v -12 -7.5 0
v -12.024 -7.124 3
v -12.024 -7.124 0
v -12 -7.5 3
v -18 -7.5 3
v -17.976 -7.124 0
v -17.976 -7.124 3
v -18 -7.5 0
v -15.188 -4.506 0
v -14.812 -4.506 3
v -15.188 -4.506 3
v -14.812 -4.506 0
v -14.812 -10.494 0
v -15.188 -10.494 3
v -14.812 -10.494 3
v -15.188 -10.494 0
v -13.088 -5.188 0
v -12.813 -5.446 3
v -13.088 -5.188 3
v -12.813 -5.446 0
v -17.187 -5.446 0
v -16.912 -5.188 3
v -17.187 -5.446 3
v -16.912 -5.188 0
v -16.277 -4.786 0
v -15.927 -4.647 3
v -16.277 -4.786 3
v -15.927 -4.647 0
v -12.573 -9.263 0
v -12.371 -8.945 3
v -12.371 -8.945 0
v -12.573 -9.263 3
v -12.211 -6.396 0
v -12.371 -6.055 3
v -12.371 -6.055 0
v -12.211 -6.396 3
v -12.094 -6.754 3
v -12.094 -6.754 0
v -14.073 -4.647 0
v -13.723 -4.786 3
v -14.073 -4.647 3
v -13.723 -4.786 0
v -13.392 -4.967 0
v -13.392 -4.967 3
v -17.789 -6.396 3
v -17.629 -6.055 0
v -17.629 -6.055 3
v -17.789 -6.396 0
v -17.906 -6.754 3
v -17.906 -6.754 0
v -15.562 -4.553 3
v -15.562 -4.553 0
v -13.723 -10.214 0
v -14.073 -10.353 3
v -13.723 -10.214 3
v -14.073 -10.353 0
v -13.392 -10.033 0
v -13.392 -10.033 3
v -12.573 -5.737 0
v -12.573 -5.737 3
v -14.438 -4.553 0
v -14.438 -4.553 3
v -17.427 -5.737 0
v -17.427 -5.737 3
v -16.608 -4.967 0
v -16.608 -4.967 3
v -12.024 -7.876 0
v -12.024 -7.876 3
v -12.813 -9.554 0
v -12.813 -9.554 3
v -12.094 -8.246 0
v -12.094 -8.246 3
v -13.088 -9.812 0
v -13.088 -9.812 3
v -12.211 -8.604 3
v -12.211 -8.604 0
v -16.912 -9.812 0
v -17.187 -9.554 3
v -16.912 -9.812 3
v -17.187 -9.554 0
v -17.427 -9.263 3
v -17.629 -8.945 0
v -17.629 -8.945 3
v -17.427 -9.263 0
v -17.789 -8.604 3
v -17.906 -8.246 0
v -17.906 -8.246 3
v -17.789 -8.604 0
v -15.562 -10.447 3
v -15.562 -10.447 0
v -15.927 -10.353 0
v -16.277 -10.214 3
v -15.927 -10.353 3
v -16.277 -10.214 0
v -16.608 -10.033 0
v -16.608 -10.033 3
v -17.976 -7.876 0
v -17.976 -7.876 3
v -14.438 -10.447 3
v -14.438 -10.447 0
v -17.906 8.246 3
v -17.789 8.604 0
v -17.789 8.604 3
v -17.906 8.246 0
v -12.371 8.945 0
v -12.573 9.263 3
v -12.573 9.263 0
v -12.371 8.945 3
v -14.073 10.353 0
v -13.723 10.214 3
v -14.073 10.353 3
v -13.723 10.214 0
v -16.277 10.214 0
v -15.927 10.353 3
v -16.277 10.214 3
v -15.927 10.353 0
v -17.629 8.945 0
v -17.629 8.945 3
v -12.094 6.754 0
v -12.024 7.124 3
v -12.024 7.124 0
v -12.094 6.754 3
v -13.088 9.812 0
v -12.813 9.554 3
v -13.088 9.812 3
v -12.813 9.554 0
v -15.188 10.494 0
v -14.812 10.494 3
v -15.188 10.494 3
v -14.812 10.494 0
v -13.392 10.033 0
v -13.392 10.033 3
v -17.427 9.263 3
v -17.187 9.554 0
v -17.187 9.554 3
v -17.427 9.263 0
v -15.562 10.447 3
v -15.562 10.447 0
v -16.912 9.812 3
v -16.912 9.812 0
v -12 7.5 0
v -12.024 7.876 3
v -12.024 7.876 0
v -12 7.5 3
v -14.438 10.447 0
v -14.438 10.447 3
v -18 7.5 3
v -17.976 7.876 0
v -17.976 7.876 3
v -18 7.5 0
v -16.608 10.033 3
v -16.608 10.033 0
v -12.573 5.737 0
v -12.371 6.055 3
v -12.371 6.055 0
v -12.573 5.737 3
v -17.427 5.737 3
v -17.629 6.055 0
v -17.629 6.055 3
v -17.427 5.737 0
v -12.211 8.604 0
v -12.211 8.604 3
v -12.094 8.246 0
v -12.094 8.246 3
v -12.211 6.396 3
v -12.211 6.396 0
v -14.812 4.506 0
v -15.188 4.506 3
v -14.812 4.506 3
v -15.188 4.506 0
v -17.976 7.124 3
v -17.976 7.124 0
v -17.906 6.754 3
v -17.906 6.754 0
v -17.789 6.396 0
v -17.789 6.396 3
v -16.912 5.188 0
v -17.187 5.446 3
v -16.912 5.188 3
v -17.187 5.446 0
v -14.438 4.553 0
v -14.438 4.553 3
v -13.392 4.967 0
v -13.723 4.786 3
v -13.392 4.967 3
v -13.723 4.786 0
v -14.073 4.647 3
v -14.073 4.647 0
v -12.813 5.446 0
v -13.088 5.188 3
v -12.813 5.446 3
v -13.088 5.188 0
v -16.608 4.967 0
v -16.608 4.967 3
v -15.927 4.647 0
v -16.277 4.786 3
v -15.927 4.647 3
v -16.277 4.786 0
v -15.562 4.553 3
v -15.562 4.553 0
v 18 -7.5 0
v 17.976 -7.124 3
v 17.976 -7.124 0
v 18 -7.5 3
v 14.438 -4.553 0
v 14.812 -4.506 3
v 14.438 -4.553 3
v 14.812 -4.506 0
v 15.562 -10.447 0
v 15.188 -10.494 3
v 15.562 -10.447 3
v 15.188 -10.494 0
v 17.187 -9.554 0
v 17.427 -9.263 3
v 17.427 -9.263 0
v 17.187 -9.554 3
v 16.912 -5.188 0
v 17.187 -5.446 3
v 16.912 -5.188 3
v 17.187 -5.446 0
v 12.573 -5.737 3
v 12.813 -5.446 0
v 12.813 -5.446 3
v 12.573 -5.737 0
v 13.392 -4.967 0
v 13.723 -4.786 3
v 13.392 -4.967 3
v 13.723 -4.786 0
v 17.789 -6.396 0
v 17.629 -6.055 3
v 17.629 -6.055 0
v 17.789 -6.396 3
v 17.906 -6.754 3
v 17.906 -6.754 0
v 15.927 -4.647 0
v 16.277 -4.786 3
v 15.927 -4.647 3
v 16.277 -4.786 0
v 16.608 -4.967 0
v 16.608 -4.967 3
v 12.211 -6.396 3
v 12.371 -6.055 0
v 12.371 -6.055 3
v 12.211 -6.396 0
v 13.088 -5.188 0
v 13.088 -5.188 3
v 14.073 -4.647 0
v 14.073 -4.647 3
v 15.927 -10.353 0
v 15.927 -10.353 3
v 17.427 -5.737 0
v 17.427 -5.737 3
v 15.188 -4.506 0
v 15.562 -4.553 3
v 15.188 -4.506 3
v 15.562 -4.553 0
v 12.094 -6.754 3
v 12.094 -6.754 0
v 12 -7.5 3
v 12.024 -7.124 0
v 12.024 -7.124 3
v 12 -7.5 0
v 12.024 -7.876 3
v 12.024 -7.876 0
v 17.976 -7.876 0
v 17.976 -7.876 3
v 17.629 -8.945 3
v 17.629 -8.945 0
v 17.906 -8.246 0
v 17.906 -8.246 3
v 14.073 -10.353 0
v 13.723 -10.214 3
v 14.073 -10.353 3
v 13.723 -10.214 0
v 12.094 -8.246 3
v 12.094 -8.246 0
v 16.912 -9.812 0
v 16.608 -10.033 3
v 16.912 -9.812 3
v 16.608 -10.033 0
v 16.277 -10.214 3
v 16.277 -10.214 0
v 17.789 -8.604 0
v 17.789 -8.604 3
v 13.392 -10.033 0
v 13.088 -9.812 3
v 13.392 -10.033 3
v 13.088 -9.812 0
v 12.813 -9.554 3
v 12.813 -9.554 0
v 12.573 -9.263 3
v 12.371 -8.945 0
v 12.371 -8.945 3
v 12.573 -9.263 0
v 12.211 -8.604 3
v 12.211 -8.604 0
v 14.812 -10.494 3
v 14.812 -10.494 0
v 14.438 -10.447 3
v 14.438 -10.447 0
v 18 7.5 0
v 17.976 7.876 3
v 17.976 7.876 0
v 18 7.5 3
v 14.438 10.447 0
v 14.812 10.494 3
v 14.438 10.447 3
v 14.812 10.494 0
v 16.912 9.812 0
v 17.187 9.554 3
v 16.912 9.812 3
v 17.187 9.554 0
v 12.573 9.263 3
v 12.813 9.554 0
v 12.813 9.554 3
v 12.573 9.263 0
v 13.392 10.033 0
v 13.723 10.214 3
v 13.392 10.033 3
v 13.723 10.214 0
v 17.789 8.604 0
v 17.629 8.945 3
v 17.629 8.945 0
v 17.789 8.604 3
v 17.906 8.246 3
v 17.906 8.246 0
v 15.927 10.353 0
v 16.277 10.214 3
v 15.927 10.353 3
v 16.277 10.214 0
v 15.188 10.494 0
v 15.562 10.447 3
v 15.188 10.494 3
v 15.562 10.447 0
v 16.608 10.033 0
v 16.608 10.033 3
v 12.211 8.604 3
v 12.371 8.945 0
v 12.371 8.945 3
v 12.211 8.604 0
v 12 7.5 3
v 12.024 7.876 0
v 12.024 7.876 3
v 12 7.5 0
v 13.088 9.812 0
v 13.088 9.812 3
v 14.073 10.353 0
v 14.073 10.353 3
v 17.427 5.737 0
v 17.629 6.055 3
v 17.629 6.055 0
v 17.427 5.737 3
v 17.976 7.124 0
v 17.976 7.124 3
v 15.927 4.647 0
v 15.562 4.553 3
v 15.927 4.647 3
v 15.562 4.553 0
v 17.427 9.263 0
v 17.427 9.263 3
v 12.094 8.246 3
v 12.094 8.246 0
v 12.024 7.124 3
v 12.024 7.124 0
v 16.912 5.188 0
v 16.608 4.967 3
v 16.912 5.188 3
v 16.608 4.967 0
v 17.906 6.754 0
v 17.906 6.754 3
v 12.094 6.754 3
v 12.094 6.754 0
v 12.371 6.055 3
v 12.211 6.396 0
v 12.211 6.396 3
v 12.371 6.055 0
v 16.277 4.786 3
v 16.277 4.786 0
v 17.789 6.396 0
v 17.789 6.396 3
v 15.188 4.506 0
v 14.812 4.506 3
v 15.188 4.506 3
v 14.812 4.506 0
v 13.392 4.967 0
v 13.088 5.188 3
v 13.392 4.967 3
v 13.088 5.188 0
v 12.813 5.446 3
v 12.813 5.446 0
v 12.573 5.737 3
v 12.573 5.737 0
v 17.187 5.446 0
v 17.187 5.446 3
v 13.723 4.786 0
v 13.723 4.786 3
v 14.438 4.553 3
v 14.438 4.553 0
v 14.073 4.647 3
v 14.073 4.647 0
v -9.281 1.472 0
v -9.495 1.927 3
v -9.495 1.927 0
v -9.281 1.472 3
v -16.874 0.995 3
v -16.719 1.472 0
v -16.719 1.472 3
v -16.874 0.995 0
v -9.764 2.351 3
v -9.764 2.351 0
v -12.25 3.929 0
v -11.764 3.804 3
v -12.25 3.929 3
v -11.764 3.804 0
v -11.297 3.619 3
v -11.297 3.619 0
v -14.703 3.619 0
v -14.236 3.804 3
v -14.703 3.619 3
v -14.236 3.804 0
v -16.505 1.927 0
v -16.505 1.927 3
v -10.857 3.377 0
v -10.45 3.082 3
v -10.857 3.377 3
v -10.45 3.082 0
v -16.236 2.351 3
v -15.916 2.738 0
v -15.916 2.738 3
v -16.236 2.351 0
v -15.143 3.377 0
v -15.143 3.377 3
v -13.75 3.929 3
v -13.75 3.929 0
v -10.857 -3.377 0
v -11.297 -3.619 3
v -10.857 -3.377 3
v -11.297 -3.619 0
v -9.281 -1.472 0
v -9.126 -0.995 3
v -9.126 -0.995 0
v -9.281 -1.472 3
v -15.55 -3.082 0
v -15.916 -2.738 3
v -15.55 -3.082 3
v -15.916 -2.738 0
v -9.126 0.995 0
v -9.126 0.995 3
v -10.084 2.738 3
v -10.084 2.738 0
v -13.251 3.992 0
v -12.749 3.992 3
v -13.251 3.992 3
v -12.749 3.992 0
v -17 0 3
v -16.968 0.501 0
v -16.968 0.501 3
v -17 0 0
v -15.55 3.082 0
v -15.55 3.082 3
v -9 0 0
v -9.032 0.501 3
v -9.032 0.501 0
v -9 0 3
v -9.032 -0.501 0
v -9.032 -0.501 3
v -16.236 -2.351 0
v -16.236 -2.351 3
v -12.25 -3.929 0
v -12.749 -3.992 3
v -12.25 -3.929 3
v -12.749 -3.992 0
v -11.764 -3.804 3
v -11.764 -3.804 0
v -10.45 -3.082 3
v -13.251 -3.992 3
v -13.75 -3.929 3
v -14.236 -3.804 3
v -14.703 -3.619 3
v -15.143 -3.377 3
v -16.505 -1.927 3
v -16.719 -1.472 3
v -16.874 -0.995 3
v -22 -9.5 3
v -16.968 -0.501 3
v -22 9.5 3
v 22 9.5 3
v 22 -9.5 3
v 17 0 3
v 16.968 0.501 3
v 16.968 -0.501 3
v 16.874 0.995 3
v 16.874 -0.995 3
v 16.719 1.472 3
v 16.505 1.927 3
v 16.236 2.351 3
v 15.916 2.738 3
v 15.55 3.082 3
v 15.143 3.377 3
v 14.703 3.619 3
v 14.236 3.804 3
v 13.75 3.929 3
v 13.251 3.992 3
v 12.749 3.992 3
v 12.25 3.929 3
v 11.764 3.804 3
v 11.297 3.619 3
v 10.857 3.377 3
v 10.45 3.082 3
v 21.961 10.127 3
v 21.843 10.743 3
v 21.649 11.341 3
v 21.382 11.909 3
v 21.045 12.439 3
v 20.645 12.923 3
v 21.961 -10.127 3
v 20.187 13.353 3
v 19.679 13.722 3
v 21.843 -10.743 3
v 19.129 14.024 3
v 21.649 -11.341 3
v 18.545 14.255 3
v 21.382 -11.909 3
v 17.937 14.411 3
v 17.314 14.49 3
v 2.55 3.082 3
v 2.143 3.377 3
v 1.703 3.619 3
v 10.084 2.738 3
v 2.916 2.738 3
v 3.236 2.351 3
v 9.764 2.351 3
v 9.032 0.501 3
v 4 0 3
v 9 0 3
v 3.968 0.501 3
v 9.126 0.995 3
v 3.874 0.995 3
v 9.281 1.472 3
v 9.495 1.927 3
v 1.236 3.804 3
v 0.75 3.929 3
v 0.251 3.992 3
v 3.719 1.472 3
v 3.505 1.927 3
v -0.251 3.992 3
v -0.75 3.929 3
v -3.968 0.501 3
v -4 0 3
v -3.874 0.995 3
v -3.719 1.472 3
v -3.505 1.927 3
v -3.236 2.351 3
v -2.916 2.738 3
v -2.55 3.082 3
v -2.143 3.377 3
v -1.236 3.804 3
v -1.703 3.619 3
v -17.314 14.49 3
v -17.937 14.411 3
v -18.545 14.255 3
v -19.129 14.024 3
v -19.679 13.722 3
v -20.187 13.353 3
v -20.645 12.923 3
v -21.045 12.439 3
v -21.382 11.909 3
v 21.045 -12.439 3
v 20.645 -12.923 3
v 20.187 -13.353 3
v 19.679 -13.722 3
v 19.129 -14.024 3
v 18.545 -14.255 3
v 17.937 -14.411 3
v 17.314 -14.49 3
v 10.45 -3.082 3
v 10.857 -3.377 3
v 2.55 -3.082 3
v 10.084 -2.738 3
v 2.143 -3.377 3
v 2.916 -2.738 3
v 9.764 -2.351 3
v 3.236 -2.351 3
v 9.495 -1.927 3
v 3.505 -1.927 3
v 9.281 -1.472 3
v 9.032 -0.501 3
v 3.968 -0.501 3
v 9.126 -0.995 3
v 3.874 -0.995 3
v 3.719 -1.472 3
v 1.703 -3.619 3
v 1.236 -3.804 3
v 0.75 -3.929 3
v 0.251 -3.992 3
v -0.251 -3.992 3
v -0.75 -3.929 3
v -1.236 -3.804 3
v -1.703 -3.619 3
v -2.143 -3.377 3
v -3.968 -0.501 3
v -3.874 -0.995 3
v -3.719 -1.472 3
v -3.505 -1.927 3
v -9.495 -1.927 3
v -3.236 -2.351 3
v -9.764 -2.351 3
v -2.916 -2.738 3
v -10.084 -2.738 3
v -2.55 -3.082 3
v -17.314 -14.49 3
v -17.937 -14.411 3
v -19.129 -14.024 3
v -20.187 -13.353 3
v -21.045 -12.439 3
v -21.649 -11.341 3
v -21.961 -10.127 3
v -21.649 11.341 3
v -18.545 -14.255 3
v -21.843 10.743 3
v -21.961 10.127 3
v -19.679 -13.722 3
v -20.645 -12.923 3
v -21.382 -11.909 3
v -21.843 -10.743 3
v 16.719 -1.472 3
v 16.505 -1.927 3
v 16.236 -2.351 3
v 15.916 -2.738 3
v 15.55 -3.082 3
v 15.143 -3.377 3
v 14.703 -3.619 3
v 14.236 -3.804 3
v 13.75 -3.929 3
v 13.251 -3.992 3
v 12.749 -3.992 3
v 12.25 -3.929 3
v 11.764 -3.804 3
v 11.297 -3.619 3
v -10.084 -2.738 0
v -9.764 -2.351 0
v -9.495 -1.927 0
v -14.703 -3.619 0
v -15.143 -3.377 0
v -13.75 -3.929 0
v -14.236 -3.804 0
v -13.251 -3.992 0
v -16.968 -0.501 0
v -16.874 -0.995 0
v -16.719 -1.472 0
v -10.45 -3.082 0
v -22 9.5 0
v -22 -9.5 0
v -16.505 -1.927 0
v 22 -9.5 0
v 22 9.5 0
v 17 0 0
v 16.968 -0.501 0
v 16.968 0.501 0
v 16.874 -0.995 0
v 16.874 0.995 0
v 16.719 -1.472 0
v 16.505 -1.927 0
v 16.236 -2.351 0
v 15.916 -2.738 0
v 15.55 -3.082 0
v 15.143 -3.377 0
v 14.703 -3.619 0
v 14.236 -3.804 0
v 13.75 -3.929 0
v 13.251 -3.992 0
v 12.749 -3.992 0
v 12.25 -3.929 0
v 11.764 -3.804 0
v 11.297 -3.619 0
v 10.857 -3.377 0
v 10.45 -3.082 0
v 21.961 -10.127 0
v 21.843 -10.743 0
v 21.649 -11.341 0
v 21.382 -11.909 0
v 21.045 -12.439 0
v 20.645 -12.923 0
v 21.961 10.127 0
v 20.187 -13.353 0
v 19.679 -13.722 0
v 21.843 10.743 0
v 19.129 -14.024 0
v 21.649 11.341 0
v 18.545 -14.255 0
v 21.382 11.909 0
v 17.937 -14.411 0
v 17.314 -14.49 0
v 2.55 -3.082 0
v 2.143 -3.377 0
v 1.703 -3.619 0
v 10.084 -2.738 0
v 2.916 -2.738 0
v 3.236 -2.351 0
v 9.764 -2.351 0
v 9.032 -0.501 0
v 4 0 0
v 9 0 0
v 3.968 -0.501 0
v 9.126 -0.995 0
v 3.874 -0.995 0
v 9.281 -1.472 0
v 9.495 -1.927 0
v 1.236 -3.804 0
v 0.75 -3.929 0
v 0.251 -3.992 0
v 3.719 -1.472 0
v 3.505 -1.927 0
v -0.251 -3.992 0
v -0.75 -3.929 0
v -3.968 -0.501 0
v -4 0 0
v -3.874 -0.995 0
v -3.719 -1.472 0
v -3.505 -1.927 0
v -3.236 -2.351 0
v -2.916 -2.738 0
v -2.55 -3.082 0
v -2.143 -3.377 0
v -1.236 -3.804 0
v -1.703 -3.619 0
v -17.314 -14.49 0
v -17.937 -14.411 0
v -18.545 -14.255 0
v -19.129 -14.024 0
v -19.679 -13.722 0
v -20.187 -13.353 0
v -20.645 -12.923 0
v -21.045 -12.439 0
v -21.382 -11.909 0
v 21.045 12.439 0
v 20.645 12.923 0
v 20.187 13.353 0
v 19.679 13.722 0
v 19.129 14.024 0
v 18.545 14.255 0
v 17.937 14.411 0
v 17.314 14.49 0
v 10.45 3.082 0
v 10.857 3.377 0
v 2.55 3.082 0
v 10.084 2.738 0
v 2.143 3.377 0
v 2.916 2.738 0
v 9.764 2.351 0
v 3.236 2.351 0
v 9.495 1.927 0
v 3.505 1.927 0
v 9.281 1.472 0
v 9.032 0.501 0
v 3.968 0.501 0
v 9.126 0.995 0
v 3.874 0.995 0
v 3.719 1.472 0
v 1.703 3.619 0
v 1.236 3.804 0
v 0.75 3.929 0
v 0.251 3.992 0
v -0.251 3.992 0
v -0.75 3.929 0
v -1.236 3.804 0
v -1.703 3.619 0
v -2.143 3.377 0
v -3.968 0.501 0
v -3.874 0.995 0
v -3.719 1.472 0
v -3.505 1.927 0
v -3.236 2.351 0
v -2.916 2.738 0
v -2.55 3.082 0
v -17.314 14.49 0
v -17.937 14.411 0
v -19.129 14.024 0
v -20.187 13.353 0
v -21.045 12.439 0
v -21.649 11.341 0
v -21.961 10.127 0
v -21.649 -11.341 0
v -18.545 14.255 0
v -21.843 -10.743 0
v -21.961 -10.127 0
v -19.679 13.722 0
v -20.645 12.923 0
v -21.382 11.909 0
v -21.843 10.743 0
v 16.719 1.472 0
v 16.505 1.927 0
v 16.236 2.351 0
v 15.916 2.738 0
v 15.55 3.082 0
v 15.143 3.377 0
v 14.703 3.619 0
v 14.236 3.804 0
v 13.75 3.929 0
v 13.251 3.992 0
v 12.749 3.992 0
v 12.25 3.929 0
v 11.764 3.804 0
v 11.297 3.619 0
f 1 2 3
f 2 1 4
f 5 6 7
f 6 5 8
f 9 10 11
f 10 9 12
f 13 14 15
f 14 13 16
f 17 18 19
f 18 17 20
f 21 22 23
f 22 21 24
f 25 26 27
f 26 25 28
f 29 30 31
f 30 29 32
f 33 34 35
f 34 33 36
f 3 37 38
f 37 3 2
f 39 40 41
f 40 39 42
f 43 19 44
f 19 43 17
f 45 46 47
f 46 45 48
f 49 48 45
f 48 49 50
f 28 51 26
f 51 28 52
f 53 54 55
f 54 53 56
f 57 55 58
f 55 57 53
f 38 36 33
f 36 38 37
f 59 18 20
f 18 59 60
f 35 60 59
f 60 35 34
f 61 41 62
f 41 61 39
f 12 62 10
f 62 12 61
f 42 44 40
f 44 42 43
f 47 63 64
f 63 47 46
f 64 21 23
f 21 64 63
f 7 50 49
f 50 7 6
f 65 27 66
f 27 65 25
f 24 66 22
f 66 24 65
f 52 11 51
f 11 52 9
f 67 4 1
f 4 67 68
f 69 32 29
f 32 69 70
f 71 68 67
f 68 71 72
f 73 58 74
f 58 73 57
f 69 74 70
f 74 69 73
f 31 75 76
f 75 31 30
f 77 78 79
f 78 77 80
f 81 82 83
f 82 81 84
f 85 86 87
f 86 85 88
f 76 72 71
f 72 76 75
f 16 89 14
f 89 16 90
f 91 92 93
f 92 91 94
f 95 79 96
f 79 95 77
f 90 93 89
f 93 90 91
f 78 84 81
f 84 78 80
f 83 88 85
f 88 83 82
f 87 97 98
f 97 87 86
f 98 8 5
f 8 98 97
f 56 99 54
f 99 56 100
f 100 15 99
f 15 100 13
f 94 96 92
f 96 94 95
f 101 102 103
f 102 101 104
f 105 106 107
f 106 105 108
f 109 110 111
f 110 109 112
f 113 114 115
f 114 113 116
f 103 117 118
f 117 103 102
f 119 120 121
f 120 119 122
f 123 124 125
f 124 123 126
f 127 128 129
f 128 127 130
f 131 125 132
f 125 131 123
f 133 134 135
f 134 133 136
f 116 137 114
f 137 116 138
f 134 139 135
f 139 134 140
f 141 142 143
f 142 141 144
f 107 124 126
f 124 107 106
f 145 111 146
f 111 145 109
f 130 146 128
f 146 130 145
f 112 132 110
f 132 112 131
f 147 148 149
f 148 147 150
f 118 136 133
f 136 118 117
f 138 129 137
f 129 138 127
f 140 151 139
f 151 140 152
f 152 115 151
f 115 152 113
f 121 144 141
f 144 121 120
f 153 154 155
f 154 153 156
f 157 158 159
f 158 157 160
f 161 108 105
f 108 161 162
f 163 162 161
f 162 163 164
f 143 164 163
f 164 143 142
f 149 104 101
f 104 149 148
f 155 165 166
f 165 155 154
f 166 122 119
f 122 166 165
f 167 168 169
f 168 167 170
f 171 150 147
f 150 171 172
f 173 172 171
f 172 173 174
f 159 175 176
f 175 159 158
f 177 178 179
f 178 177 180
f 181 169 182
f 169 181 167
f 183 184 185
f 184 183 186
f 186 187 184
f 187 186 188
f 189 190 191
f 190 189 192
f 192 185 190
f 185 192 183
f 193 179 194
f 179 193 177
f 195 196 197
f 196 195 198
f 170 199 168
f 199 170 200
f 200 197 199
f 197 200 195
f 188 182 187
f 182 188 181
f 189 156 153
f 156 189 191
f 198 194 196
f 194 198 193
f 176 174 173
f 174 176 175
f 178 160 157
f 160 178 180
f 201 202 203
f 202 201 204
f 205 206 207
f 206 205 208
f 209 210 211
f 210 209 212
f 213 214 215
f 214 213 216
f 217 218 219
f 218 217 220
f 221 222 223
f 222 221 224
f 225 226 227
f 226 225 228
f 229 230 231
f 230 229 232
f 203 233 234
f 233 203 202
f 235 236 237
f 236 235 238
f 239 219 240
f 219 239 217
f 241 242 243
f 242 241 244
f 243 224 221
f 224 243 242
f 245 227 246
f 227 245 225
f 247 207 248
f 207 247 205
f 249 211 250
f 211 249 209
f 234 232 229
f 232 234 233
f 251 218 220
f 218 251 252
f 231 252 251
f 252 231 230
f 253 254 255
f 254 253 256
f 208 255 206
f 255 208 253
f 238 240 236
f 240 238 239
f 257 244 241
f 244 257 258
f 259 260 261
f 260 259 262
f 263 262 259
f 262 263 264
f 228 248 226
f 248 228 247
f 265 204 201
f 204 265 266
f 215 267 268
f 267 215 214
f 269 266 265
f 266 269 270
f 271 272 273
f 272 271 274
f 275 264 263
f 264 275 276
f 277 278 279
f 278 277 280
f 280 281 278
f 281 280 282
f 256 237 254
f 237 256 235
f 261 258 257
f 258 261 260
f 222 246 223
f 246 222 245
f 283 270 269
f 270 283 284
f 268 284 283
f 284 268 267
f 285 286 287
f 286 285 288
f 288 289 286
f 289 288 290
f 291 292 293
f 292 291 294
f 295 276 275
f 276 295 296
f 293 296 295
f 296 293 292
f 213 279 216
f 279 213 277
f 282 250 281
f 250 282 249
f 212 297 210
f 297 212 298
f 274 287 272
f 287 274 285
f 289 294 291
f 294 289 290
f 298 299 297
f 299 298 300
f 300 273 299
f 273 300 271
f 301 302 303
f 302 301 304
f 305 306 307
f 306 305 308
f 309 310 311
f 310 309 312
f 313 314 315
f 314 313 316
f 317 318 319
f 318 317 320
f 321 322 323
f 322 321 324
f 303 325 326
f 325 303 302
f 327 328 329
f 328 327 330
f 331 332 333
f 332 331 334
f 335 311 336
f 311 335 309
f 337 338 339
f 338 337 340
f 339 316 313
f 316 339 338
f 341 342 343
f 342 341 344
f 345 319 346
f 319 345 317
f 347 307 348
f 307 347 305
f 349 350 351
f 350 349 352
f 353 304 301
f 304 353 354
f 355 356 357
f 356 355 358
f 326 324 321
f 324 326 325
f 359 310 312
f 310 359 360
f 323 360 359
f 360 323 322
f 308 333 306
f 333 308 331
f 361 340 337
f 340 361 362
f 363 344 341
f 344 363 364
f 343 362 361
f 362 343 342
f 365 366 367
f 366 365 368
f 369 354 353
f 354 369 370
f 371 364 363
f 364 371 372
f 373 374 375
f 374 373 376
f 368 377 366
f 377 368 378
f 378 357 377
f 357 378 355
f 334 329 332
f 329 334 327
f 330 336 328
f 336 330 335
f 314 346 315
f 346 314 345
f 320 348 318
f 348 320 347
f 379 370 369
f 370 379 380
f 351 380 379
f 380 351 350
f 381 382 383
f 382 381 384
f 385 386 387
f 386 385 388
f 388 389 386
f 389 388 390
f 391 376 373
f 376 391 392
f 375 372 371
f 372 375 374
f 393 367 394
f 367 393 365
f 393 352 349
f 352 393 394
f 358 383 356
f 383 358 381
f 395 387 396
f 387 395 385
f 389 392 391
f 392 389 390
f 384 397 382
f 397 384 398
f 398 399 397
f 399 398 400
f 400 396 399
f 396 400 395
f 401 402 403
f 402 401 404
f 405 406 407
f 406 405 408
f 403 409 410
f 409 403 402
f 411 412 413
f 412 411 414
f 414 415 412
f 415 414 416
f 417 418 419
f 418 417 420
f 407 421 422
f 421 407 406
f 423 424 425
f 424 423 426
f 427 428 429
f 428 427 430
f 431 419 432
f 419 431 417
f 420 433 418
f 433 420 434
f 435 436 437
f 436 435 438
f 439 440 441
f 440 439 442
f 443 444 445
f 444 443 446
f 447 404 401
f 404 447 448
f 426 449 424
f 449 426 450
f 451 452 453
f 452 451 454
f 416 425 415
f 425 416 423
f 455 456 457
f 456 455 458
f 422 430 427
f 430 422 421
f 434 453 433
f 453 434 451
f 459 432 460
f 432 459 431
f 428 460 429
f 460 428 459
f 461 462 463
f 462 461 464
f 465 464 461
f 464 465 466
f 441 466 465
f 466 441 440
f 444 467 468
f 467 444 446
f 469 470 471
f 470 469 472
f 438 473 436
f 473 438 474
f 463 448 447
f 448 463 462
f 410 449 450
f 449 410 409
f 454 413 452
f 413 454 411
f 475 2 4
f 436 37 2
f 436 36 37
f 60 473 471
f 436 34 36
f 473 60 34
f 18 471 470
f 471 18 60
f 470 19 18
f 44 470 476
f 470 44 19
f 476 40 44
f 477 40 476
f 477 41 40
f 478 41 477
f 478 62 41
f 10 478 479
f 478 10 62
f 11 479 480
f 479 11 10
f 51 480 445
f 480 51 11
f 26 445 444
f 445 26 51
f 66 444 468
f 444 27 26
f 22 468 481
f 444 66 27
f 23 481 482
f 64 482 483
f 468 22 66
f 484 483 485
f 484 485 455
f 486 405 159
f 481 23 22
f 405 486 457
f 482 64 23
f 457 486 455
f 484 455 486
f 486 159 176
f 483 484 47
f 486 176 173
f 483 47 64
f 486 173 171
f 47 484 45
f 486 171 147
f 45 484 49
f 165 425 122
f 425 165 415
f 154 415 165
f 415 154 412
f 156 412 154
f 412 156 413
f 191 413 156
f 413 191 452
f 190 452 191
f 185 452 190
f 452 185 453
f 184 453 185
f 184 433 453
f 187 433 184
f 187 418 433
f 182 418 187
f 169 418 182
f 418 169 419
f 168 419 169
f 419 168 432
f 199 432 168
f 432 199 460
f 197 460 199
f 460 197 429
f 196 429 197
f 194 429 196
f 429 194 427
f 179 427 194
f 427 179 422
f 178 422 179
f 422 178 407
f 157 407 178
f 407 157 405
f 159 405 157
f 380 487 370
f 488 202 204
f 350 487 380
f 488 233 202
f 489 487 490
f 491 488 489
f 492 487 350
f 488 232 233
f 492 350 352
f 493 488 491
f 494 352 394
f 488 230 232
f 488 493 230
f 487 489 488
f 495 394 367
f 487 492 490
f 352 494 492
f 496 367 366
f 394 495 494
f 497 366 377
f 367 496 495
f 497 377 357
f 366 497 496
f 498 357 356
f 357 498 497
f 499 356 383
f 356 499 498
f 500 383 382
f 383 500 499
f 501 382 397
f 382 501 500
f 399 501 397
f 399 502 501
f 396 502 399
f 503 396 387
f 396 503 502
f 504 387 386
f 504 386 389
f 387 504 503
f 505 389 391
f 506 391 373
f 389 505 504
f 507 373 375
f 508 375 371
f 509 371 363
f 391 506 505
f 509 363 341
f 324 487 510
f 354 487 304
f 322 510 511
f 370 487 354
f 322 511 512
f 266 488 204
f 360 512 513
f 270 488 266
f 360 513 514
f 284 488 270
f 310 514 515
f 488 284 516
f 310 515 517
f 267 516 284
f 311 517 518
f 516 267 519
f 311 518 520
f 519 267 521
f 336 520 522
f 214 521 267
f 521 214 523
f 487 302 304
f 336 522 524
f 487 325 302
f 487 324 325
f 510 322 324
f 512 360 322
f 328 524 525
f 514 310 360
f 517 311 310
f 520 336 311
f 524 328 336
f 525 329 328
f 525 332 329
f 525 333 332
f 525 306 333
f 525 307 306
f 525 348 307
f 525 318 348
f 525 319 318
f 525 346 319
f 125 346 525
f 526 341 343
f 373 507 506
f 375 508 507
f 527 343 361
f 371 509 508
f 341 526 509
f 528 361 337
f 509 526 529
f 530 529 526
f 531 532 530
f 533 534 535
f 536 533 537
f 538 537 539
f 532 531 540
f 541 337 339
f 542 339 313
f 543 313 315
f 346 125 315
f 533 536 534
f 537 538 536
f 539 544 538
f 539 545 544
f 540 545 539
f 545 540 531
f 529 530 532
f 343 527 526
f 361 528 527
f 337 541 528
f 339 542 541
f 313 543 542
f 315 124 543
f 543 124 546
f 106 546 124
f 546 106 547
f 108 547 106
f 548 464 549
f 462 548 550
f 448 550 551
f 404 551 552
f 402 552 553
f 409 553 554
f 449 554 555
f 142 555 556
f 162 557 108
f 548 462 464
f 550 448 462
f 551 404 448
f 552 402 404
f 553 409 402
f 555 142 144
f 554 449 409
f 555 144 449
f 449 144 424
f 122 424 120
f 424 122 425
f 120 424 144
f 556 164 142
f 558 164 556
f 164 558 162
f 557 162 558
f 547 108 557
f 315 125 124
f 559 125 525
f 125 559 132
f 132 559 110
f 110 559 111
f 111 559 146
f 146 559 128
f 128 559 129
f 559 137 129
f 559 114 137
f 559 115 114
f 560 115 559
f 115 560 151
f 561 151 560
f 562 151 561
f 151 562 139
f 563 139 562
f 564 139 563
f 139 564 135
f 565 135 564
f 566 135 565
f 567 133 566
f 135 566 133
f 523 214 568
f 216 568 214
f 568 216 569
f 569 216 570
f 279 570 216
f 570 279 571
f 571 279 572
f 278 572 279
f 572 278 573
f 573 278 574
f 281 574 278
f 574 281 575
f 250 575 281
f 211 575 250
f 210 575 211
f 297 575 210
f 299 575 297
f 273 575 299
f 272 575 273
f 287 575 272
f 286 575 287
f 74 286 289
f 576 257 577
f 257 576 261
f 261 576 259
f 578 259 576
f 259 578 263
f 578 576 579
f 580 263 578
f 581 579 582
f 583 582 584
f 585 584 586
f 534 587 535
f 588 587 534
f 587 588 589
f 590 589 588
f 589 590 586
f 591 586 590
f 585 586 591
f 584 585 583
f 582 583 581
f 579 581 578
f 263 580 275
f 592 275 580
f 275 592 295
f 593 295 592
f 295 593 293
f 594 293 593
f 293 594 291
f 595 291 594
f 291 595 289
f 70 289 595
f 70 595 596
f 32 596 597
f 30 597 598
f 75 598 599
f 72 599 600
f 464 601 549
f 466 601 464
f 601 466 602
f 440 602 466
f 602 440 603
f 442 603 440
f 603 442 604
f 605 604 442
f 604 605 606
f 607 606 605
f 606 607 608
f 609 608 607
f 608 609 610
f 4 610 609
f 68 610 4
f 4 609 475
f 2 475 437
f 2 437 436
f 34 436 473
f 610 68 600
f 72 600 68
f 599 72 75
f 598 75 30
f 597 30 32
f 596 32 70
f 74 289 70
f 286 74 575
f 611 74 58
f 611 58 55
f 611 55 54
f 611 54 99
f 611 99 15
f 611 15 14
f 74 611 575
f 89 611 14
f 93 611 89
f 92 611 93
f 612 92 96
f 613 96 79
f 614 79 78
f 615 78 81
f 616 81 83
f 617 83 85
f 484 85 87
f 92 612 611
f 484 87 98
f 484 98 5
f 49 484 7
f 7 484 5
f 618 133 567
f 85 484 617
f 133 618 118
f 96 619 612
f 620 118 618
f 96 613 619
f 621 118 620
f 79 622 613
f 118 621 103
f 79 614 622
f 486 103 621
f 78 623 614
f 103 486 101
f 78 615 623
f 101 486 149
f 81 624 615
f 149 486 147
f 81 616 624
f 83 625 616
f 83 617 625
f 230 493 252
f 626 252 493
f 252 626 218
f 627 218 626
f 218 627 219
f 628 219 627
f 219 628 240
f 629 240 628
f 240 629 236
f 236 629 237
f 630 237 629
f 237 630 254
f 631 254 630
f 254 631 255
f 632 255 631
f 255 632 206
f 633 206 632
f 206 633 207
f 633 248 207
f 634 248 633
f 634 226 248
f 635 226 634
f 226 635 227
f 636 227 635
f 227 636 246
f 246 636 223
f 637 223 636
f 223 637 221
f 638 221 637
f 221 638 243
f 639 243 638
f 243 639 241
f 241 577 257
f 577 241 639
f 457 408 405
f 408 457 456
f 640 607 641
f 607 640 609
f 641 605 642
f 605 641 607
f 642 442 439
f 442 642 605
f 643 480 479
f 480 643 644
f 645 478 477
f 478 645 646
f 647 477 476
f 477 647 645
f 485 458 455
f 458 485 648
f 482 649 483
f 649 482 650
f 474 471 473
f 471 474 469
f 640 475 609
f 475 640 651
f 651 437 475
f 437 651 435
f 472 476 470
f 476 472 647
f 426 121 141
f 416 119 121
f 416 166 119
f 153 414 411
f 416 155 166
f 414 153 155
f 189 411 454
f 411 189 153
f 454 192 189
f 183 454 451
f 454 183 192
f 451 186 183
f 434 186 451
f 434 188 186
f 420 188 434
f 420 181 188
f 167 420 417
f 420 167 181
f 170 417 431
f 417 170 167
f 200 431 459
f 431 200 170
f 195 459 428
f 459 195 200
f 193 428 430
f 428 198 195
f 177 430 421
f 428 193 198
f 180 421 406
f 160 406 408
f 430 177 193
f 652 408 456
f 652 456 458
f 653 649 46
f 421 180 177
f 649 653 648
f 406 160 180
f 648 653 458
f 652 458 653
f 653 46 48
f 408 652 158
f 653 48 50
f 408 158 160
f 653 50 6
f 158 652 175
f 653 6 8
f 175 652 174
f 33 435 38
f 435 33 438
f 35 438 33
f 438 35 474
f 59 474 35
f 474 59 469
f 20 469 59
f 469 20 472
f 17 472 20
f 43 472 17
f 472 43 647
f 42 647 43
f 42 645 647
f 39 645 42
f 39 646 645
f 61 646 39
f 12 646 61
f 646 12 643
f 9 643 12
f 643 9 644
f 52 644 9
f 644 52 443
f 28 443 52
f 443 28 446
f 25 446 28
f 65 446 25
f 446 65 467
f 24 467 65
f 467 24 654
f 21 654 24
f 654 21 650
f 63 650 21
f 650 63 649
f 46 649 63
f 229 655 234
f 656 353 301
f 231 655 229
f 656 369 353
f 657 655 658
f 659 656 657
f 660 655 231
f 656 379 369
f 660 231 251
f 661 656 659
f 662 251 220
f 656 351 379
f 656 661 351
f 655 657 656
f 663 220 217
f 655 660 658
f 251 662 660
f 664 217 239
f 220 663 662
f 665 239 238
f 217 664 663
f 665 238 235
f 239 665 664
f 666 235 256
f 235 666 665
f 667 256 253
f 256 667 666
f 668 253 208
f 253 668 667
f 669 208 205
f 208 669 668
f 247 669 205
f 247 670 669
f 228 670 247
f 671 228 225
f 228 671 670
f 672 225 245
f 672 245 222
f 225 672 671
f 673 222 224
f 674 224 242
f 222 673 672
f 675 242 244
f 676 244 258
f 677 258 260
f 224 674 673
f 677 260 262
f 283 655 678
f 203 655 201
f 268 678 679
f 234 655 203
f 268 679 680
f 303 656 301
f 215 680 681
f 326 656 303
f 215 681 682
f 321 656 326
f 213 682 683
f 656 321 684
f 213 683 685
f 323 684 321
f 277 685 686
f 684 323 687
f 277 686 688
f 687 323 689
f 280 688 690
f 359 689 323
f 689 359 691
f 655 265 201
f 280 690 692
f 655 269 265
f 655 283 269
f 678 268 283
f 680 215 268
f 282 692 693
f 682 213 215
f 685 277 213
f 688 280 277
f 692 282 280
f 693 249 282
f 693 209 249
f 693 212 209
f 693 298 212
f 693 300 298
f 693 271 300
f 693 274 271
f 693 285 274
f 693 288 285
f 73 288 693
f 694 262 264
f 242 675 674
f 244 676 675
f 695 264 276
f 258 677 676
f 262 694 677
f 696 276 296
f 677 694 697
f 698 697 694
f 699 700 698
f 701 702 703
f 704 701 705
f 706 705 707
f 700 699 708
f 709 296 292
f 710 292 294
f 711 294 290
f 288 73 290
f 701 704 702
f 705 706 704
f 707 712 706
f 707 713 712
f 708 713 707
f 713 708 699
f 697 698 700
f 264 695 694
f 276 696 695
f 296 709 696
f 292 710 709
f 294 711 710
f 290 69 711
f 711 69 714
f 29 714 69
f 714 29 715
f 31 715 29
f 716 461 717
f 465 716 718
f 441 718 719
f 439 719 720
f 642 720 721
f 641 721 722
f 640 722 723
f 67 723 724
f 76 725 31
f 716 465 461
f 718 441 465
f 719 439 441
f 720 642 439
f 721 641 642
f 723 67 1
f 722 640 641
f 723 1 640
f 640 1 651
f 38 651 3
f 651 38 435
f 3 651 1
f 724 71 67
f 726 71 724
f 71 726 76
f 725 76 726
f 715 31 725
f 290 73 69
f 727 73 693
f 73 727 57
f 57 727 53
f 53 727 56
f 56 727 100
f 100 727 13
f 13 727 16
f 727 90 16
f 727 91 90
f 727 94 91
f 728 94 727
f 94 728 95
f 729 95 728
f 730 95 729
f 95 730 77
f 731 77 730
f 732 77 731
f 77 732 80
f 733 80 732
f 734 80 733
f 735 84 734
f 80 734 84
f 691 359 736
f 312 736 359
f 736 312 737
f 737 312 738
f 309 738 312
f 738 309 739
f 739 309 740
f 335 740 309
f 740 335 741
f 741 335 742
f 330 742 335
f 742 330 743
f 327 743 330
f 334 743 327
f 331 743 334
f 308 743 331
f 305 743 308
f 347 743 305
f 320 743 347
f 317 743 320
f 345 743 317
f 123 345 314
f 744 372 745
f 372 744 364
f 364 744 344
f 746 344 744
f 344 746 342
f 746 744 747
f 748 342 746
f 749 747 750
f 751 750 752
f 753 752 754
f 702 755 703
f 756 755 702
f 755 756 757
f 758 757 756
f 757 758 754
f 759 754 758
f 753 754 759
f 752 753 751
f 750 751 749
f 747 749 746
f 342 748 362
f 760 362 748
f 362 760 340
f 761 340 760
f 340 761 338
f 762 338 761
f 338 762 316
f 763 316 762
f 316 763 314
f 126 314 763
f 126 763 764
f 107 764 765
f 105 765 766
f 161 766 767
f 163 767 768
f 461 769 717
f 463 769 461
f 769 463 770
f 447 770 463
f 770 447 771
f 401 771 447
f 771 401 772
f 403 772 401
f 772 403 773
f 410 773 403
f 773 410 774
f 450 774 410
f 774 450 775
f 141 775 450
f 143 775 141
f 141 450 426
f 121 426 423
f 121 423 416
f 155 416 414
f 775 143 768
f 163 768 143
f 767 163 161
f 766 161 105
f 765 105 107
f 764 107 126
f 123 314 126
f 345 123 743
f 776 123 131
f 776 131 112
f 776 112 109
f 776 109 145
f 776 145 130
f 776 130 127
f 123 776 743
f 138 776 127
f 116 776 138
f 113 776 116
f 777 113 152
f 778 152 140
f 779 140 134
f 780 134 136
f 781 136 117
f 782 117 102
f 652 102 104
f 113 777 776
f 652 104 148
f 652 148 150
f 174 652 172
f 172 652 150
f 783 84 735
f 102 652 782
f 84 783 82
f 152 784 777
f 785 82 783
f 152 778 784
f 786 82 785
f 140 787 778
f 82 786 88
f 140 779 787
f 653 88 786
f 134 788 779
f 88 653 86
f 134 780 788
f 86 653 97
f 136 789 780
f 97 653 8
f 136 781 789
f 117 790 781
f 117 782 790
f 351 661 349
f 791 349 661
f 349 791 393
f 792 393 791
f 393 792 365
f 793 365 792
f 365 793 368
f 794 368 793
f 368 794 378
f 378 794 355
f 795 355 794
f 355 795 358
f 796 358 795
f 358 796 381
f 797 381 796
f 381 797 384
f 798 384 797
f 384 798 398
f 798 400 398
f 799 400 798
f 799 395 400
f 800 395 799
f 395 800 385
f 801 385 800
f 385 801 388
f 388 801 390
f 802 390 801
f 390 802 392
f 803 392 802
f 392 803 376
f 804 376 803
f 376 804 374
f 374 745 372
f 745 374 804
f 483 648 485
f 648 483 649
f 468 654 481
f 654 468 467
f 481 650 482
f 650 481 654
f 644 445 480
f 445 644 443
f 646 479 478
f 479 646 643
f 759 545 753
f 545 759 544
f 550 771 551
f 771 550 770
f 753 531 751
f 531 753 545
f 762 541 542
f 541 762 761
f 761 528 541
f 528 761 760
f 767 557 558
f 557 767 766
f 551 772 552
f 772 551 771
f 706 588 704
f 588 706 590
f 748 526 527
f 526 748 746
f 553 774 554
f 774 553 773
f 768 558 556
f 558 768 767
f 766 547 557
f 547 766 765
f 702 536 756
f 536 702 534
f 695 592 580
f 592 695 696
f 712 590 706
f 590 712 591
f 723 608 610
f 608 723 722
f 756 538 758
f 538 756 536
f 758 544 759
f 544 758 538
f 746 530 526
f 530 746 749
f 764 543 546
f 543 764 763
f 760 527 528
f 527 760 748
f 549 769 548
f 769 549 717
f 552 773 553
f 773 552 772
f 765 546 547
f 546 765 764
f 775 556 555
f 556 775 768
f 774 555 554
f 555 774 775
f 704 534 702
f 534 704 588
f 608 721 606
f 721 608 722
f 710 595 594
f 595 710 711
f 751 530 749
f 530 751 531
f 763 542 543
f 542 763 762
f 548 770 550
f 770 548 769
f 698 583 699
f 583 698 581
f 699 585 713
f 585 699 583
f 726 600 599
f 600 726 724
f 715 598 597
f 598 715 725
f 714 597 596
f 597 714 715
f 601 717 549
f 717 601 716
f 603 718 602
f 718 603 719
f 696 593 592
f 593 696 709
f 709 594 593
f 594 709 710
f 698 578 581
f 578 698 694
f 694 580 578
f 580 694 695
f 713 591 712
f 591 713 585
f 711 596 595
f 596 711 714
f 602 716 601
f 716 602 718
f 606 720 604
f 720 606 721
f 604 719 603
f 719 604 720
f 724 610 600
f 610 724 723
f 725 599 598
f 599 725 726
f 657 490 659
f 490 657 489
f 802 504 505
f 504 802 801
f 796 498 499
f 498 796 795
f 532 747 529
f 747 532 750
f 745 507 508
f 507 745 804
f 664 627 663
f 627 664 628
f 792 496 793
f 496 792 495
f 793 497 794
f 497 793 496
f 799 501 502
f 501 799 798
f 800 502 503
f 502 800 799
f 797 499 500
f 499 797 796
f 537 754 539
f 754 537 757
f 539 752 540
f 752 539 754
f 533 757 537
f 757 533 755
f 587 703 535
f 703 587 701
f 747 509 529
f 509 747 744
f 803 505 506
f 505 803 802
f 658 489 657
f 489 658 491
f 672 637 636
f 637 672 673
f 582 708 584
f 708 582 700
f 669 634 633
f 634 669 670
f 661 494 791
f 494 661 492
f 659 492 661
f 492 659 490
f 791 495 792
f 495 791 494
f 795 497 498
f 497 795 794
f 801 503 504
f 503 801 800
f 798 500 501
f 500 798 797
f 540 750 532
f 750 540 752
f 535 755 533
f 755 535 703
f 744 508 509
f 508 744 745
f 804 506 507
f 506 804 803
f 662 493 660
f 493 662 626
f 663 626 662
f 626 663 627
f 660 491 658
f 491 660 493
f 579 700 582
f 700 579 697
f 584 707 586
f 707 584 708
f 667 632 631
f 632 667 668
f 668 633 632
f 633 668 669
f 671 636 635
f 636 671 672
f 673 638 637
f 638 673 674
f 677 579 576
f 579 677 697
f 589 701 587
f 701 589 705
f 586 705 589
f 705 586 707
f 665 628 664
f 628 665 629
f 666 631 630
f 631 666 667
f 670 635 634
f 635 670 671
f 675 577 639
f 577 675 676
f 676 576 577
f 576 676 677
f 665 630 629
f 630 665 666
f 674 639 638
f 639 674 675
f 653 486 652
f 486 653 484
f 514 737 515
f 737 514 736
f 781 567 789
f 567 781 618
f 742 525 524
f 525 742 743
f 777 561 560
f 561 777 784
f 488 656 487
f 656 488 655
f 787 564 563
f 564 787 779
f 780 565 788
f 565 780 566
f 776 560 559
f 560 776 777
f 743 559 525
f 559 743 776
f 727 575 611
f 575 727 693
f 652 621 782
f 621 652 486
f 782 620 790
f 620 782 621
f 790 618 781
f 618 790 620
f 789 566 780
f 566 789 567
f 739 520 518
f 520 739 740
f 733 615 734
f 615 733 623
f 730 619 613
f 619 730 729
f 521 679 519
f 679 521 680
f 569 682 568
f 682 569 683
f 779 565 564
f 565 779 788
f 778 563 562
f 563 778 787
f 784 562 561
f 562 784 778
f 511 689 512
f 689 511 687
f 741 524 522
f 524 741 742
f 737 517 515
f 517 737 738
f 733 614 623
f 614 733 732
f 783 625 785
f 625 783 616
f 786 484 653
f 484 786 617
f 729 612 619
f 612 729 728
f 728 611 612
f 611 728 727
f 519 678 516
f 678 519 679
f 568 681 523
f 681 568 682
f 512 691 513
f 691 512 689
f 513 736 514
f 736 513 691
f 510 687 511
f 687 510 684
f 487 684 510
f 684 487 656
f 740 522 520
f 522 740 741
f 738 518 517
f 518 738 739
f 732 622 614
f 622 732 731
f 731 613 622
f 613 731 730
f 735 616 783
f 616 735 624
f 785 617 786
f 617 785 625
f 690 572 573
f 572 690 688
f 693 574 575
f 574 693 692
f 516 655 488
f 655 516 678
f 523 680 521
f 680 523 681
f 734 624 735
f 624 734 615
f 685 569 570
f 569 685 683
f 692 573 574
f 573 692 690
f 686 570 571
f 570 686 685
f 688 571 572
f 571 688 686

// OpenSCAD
$fn = 50;


difference() {
	union() {
		hull() {
			translate(v = [-17.0000000000, 9.5000000000, 0]) {
				cylinder(h = 3, r = 5);
			}
			translate(v = [17.0000000000, 9.5000000000, 0]) {
				cylinder(h = 3, r = 5);
			}
			translate(v = [-17.0000000000, -9.5000000000, 0]) {
				cylinder(h = 3, r = 5);
			}
			translate(v = [17.0000000000, -9.5000000000, 0]) {
				cylinder(h = 3, r = 5);
			}
		}
	}
	union() {
		#translate(v = [-15.0000000000, -7.5000000000, -100.0000000000]) {
			cylinder(h = 200, r = 3.0000000000);
		}
		#translate(v = [-15.0000000000, 7.5000000000, -100.0000000000]) {
			cylinder(h = 200, r = 3.0000000000);
		}
		#translate(v = [15.0000000000, -7.5000000000, -100.0000000000]) {
			cylinder(h = 200, r = 3.0000000000);
		}
		#translate(v = [15.0000000000, 7.5000000000, -100.0000000000]) {
			cylinder(h = 200, r = 3.0000000000);
		}
		#translate(v = [-13.0000000000, 0, 0]) {
			cylinder(h = 3, r = 4.0000000000);
		}
		#cylinder(h = 3, r = 4.0000000000);
		#translate(v = [13.0000000000, 0, 0]) {
			cylinder(h = 3, r = 4.0000000000);
		}
	}
}
